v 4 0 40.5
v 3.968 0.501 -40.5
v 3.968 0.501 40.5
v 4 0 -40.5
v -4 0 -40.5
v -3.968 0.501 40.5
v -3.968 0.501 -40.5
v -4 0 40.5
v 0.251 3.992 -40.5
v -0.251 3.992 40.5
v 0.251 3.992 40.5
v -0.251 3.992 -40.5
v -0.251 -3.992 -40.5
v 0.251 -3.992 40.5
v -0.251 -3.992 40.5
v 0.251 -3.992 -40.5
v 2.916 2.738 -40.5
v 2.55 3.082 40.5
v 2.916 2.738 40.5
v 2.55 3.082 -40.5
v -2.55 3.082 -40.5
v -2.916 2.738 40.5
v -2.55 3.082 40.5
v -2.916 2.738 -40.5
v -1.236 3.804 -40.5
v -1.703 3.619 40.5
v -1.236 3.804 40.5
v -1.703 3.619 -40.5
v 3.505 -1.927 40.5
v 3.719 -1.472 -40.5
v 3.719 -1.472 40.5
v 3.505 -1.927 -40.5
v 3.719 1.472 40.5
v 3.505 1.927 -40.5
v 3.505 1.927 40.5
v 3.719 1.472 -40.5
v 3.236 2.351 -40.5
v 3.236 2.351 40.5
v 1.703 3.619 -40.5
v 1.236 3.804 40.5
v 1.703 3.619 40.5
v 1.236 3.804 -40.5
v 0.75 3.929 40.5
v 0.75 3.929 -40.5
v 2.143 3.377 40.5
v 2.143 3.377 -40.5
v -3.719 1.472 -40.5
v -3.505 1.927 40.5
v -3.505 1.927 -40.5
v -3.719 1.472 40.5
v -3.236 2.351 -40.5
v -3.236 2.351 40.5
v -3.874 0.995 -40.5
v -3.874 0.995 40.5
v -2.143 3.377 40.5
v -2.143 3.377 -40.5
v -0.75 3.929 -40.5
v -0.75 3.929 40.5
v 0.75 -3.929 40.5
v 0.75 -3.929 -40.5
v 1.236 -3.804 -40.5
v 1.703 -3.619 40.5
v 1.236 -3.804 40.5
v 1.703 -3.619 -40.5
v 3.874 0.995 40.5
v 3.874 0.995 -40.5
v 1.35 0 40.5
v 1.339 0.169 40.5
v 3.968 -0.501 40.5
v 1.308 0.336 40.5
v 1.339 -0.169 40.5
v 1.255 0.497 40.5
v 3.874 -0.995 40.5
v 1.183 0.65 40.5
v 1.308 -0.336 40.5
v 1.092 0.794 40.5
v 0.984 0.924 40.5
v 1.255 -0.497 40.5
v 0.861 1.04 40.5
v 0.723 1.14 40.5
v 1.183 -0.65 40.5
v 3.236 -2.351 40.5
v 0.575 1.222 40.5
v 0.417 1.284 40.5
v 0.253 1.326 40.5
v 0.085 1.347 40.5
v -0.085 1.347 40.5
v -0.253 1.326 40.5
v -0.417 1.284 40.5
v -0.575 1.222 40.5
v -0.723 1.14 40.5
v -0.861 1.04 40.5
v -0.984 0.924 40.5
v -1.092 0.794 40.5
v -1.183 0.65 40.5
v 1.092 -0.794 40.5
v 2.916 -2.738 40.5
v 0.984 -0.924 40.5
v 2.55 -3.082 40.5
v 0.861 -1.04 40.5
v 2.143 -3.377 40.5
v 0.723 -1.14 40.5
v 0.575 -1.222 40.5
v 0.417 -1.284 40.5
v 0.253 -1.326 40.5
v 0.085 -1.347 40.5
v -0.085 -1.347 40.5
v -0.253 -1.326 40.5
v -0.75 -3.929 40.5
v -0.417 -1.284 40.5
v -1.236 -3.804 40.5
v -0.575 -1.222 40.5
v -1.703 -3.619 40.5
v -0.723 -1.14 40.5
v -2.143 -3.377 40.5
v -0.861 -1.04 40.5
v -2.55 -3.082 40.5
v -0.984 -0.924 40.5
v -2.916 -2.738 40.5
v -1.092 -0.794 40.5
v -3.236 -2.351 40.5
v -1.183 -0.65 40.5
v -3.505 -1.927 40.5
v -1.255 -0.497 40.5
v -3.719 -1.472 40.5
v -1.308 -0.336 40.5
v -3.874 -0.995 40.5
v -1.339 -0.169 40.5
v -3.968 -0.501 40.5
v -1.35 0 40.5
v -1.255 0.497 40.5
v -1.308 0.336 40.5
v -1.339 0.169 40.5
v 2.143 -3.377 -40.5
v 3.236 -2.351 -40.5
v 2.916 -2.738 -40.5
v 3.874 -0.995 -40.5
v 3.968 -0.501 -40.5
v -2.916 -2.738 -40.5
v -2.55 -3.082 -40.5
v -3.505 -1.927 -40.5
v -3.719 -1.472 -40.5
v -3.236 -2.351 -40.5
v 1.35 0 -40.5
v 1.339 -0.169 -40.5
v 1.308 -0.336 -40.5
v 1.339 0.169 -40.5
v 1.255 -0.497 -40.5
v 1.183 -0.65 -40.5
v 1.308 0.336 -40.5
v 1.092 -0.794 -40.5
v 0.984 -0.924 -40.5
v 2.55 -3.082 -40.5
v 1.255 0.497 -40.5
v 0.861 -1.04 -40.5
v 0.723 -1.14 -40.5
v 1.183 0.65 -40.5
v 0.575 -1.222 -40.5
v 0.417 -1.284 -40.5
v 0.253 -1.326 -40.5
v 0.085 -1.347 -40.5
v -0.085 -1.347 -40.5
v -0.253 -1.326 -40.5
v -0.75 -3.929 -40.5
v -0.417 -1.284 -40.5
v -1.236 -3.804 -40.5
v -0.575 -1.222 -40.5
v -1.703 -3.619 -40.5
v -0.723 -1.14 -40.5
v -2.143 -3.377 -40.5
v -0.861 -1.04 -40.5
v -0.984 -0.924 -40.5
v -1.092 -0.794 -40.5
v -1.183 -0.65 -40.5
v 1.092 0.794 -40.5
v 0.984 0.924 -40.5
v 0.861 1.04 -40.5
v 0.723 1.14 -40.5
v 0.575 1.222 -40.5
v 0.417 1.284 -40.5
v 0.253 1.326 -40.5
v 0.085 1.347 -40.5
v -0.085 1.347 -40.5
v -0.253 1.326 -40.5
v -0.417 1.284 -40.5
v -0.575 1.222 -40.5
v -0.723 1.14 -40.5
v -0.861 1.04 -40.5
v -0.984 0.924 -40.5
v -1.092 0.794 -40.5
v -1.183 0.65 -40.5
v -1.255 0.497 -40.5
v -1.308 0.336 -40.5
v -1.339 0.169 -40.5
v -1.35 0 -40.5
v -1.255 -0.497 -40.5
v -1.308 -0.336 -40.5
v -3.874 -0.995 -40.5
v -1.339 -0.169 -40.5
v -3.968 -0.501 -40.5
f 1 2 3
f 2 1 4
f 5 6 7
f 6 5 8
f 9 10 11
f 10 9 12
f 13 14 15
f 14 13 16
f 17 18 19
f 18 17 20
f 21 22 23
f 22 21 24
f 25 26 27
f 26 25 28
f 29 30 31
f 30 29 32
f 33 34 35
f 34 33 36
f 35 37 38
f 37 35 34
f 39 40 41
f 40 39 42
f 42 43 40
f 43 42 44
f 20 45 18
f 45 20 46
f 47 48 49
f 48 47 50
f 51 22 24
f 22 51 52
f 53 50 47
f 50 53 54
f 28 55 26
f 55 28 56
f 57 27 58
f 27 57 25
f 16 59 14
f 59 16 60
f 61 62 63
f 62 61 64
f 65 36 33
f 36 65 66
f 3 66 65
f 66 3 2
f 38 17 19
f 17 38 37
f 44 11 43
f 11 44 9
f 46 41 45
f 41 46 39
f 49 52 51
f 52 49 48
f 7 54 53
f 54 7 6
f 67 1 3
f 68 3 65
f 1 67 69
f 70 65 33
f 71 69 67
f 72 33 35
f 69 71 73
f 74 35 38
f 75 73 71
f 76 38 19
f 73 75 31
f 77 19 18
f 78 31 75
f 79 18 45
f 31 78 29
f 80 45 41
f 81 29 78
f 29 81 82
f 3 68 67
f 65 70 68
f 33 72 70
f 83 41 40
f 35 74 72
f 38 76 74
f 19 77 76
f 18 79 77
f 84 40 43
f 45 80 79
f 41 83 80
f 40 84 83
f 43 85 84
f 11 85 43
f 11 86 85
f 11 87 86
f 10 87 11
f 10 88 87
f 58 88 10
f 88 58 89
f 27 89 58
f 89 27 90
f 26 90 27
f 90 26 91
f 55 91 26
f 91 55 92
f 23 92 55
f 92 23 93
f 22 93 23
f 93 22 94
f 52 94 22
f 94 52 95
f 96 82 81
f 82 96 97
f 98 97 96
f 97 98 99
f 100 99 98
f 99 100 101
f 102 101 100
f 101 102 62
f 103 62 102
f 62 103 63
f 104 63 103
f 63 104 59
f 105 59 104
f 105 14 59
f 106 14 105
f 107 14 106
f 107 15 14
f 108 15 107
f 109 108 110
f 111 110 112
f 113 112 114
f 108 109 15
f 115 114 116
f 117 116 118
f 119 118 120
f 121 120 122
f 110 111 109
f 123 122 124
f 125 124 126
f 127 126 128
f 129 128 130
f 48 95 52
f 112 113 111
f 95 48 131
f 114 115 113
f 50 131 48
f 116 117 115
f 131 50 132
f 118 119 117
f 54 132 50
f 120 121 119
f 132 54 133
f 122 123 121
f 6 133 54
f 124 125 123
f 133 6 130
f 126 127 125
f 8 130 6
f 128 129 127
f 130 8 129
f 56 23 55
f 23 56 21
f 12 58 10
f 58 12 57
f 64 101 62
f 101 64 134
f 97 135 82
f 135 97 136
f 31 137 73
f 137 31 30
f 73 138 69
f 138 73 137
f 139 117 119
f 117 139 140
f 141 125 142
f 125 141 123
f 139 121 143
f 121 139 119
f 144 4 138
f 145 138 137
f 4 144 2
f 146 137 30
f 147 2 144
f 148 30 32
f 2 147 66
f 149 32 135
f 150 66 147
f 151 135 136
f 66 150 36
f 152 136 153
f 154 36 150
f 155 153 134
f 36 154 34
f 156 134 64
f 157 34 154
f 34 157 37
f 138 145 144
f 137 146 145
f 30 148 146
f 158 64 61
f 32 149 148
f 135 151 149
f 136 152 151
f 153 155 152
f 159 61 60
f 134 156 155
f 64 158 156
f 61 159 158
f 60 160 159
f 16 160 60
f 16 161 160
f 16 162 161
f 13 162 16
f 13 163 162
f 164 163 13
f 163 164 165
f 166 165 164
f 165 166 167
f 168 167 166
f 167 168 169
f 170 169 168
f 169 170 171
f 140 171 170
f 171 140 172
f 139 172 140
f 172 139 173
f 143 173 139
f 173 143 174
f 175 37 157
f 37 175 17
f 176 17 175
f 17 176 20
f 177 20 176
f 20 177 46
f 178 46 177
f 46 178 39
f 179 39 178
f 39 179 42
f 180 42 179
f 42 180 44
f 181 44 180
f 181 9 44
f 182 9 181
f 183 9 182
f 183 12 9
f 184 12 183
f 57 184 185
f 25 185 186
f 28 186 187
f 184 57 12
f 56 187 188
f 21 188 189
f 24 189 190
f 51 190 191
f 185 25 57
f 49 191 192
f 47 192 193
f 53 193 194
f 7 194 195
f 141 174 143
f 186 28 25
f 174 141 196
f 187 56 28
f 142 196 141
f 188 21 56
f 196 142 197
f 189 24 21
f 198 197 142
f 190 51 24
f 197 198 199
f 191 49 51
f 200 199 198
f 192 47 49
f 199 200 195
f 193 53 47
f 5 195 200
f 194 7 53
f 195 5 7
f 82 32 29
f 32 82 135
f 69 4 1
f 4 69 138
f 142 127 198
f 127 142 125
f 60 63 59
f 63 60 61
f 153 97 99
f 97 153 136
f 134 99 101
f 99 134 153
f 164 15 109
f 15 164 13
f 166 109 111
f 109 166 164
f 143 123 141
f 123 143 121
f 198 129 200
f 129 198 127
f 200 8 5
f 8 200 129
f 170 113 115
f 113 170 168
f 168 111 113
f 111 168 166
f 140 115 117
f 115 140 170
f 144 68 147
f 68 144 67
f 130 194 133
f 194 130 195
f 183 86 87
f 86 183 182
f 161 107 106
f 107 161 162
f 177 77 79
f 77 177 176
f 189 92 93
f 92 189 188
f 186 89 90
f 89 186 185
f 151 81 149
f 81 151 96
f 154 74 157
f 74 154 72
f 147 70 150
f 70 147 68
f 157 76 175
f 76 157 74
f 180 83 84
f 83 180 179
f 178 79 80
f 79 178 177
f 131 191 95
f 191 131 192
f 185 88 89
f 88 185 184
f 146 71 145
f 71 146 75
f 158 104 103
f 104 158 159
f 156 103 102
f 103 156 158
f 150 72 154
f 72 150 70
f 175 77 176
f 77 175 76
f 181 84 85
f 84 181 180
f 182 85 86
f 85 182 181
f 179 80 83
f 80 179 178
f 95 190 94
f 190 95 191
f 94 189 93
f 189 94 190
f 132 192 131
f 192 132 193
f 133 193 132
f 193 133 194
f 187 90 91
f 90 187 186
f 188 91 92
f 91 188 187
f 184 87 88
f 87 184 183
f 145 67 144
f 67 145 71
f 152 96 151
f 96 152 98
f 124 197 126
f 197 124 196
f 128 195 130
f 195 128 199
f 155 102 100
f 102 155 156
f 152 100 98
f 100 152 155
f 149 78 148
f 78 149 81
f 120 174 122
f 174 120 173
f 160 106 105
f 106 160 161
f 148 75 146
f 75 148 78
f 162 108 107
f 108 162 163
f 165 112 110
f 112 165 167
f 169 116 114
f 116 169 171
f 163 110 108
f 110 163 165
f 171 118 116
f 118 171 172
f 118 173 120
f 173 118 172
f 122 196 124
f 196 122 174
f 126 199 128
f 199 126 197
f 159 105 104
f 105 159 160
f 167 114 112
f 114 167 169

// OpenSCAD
$fn = 50;


difference() {
	union() {
		translate(v = [0, 0, -40.5000000000]) {
			cylinder(h = 81, r = 4.0000000000);
		}
	}
	union() {
		translate(v = [0, 0, -100.0000000000]) {
			cylinder(h = 200, r = 1.3500000000);
		}
	}
}
